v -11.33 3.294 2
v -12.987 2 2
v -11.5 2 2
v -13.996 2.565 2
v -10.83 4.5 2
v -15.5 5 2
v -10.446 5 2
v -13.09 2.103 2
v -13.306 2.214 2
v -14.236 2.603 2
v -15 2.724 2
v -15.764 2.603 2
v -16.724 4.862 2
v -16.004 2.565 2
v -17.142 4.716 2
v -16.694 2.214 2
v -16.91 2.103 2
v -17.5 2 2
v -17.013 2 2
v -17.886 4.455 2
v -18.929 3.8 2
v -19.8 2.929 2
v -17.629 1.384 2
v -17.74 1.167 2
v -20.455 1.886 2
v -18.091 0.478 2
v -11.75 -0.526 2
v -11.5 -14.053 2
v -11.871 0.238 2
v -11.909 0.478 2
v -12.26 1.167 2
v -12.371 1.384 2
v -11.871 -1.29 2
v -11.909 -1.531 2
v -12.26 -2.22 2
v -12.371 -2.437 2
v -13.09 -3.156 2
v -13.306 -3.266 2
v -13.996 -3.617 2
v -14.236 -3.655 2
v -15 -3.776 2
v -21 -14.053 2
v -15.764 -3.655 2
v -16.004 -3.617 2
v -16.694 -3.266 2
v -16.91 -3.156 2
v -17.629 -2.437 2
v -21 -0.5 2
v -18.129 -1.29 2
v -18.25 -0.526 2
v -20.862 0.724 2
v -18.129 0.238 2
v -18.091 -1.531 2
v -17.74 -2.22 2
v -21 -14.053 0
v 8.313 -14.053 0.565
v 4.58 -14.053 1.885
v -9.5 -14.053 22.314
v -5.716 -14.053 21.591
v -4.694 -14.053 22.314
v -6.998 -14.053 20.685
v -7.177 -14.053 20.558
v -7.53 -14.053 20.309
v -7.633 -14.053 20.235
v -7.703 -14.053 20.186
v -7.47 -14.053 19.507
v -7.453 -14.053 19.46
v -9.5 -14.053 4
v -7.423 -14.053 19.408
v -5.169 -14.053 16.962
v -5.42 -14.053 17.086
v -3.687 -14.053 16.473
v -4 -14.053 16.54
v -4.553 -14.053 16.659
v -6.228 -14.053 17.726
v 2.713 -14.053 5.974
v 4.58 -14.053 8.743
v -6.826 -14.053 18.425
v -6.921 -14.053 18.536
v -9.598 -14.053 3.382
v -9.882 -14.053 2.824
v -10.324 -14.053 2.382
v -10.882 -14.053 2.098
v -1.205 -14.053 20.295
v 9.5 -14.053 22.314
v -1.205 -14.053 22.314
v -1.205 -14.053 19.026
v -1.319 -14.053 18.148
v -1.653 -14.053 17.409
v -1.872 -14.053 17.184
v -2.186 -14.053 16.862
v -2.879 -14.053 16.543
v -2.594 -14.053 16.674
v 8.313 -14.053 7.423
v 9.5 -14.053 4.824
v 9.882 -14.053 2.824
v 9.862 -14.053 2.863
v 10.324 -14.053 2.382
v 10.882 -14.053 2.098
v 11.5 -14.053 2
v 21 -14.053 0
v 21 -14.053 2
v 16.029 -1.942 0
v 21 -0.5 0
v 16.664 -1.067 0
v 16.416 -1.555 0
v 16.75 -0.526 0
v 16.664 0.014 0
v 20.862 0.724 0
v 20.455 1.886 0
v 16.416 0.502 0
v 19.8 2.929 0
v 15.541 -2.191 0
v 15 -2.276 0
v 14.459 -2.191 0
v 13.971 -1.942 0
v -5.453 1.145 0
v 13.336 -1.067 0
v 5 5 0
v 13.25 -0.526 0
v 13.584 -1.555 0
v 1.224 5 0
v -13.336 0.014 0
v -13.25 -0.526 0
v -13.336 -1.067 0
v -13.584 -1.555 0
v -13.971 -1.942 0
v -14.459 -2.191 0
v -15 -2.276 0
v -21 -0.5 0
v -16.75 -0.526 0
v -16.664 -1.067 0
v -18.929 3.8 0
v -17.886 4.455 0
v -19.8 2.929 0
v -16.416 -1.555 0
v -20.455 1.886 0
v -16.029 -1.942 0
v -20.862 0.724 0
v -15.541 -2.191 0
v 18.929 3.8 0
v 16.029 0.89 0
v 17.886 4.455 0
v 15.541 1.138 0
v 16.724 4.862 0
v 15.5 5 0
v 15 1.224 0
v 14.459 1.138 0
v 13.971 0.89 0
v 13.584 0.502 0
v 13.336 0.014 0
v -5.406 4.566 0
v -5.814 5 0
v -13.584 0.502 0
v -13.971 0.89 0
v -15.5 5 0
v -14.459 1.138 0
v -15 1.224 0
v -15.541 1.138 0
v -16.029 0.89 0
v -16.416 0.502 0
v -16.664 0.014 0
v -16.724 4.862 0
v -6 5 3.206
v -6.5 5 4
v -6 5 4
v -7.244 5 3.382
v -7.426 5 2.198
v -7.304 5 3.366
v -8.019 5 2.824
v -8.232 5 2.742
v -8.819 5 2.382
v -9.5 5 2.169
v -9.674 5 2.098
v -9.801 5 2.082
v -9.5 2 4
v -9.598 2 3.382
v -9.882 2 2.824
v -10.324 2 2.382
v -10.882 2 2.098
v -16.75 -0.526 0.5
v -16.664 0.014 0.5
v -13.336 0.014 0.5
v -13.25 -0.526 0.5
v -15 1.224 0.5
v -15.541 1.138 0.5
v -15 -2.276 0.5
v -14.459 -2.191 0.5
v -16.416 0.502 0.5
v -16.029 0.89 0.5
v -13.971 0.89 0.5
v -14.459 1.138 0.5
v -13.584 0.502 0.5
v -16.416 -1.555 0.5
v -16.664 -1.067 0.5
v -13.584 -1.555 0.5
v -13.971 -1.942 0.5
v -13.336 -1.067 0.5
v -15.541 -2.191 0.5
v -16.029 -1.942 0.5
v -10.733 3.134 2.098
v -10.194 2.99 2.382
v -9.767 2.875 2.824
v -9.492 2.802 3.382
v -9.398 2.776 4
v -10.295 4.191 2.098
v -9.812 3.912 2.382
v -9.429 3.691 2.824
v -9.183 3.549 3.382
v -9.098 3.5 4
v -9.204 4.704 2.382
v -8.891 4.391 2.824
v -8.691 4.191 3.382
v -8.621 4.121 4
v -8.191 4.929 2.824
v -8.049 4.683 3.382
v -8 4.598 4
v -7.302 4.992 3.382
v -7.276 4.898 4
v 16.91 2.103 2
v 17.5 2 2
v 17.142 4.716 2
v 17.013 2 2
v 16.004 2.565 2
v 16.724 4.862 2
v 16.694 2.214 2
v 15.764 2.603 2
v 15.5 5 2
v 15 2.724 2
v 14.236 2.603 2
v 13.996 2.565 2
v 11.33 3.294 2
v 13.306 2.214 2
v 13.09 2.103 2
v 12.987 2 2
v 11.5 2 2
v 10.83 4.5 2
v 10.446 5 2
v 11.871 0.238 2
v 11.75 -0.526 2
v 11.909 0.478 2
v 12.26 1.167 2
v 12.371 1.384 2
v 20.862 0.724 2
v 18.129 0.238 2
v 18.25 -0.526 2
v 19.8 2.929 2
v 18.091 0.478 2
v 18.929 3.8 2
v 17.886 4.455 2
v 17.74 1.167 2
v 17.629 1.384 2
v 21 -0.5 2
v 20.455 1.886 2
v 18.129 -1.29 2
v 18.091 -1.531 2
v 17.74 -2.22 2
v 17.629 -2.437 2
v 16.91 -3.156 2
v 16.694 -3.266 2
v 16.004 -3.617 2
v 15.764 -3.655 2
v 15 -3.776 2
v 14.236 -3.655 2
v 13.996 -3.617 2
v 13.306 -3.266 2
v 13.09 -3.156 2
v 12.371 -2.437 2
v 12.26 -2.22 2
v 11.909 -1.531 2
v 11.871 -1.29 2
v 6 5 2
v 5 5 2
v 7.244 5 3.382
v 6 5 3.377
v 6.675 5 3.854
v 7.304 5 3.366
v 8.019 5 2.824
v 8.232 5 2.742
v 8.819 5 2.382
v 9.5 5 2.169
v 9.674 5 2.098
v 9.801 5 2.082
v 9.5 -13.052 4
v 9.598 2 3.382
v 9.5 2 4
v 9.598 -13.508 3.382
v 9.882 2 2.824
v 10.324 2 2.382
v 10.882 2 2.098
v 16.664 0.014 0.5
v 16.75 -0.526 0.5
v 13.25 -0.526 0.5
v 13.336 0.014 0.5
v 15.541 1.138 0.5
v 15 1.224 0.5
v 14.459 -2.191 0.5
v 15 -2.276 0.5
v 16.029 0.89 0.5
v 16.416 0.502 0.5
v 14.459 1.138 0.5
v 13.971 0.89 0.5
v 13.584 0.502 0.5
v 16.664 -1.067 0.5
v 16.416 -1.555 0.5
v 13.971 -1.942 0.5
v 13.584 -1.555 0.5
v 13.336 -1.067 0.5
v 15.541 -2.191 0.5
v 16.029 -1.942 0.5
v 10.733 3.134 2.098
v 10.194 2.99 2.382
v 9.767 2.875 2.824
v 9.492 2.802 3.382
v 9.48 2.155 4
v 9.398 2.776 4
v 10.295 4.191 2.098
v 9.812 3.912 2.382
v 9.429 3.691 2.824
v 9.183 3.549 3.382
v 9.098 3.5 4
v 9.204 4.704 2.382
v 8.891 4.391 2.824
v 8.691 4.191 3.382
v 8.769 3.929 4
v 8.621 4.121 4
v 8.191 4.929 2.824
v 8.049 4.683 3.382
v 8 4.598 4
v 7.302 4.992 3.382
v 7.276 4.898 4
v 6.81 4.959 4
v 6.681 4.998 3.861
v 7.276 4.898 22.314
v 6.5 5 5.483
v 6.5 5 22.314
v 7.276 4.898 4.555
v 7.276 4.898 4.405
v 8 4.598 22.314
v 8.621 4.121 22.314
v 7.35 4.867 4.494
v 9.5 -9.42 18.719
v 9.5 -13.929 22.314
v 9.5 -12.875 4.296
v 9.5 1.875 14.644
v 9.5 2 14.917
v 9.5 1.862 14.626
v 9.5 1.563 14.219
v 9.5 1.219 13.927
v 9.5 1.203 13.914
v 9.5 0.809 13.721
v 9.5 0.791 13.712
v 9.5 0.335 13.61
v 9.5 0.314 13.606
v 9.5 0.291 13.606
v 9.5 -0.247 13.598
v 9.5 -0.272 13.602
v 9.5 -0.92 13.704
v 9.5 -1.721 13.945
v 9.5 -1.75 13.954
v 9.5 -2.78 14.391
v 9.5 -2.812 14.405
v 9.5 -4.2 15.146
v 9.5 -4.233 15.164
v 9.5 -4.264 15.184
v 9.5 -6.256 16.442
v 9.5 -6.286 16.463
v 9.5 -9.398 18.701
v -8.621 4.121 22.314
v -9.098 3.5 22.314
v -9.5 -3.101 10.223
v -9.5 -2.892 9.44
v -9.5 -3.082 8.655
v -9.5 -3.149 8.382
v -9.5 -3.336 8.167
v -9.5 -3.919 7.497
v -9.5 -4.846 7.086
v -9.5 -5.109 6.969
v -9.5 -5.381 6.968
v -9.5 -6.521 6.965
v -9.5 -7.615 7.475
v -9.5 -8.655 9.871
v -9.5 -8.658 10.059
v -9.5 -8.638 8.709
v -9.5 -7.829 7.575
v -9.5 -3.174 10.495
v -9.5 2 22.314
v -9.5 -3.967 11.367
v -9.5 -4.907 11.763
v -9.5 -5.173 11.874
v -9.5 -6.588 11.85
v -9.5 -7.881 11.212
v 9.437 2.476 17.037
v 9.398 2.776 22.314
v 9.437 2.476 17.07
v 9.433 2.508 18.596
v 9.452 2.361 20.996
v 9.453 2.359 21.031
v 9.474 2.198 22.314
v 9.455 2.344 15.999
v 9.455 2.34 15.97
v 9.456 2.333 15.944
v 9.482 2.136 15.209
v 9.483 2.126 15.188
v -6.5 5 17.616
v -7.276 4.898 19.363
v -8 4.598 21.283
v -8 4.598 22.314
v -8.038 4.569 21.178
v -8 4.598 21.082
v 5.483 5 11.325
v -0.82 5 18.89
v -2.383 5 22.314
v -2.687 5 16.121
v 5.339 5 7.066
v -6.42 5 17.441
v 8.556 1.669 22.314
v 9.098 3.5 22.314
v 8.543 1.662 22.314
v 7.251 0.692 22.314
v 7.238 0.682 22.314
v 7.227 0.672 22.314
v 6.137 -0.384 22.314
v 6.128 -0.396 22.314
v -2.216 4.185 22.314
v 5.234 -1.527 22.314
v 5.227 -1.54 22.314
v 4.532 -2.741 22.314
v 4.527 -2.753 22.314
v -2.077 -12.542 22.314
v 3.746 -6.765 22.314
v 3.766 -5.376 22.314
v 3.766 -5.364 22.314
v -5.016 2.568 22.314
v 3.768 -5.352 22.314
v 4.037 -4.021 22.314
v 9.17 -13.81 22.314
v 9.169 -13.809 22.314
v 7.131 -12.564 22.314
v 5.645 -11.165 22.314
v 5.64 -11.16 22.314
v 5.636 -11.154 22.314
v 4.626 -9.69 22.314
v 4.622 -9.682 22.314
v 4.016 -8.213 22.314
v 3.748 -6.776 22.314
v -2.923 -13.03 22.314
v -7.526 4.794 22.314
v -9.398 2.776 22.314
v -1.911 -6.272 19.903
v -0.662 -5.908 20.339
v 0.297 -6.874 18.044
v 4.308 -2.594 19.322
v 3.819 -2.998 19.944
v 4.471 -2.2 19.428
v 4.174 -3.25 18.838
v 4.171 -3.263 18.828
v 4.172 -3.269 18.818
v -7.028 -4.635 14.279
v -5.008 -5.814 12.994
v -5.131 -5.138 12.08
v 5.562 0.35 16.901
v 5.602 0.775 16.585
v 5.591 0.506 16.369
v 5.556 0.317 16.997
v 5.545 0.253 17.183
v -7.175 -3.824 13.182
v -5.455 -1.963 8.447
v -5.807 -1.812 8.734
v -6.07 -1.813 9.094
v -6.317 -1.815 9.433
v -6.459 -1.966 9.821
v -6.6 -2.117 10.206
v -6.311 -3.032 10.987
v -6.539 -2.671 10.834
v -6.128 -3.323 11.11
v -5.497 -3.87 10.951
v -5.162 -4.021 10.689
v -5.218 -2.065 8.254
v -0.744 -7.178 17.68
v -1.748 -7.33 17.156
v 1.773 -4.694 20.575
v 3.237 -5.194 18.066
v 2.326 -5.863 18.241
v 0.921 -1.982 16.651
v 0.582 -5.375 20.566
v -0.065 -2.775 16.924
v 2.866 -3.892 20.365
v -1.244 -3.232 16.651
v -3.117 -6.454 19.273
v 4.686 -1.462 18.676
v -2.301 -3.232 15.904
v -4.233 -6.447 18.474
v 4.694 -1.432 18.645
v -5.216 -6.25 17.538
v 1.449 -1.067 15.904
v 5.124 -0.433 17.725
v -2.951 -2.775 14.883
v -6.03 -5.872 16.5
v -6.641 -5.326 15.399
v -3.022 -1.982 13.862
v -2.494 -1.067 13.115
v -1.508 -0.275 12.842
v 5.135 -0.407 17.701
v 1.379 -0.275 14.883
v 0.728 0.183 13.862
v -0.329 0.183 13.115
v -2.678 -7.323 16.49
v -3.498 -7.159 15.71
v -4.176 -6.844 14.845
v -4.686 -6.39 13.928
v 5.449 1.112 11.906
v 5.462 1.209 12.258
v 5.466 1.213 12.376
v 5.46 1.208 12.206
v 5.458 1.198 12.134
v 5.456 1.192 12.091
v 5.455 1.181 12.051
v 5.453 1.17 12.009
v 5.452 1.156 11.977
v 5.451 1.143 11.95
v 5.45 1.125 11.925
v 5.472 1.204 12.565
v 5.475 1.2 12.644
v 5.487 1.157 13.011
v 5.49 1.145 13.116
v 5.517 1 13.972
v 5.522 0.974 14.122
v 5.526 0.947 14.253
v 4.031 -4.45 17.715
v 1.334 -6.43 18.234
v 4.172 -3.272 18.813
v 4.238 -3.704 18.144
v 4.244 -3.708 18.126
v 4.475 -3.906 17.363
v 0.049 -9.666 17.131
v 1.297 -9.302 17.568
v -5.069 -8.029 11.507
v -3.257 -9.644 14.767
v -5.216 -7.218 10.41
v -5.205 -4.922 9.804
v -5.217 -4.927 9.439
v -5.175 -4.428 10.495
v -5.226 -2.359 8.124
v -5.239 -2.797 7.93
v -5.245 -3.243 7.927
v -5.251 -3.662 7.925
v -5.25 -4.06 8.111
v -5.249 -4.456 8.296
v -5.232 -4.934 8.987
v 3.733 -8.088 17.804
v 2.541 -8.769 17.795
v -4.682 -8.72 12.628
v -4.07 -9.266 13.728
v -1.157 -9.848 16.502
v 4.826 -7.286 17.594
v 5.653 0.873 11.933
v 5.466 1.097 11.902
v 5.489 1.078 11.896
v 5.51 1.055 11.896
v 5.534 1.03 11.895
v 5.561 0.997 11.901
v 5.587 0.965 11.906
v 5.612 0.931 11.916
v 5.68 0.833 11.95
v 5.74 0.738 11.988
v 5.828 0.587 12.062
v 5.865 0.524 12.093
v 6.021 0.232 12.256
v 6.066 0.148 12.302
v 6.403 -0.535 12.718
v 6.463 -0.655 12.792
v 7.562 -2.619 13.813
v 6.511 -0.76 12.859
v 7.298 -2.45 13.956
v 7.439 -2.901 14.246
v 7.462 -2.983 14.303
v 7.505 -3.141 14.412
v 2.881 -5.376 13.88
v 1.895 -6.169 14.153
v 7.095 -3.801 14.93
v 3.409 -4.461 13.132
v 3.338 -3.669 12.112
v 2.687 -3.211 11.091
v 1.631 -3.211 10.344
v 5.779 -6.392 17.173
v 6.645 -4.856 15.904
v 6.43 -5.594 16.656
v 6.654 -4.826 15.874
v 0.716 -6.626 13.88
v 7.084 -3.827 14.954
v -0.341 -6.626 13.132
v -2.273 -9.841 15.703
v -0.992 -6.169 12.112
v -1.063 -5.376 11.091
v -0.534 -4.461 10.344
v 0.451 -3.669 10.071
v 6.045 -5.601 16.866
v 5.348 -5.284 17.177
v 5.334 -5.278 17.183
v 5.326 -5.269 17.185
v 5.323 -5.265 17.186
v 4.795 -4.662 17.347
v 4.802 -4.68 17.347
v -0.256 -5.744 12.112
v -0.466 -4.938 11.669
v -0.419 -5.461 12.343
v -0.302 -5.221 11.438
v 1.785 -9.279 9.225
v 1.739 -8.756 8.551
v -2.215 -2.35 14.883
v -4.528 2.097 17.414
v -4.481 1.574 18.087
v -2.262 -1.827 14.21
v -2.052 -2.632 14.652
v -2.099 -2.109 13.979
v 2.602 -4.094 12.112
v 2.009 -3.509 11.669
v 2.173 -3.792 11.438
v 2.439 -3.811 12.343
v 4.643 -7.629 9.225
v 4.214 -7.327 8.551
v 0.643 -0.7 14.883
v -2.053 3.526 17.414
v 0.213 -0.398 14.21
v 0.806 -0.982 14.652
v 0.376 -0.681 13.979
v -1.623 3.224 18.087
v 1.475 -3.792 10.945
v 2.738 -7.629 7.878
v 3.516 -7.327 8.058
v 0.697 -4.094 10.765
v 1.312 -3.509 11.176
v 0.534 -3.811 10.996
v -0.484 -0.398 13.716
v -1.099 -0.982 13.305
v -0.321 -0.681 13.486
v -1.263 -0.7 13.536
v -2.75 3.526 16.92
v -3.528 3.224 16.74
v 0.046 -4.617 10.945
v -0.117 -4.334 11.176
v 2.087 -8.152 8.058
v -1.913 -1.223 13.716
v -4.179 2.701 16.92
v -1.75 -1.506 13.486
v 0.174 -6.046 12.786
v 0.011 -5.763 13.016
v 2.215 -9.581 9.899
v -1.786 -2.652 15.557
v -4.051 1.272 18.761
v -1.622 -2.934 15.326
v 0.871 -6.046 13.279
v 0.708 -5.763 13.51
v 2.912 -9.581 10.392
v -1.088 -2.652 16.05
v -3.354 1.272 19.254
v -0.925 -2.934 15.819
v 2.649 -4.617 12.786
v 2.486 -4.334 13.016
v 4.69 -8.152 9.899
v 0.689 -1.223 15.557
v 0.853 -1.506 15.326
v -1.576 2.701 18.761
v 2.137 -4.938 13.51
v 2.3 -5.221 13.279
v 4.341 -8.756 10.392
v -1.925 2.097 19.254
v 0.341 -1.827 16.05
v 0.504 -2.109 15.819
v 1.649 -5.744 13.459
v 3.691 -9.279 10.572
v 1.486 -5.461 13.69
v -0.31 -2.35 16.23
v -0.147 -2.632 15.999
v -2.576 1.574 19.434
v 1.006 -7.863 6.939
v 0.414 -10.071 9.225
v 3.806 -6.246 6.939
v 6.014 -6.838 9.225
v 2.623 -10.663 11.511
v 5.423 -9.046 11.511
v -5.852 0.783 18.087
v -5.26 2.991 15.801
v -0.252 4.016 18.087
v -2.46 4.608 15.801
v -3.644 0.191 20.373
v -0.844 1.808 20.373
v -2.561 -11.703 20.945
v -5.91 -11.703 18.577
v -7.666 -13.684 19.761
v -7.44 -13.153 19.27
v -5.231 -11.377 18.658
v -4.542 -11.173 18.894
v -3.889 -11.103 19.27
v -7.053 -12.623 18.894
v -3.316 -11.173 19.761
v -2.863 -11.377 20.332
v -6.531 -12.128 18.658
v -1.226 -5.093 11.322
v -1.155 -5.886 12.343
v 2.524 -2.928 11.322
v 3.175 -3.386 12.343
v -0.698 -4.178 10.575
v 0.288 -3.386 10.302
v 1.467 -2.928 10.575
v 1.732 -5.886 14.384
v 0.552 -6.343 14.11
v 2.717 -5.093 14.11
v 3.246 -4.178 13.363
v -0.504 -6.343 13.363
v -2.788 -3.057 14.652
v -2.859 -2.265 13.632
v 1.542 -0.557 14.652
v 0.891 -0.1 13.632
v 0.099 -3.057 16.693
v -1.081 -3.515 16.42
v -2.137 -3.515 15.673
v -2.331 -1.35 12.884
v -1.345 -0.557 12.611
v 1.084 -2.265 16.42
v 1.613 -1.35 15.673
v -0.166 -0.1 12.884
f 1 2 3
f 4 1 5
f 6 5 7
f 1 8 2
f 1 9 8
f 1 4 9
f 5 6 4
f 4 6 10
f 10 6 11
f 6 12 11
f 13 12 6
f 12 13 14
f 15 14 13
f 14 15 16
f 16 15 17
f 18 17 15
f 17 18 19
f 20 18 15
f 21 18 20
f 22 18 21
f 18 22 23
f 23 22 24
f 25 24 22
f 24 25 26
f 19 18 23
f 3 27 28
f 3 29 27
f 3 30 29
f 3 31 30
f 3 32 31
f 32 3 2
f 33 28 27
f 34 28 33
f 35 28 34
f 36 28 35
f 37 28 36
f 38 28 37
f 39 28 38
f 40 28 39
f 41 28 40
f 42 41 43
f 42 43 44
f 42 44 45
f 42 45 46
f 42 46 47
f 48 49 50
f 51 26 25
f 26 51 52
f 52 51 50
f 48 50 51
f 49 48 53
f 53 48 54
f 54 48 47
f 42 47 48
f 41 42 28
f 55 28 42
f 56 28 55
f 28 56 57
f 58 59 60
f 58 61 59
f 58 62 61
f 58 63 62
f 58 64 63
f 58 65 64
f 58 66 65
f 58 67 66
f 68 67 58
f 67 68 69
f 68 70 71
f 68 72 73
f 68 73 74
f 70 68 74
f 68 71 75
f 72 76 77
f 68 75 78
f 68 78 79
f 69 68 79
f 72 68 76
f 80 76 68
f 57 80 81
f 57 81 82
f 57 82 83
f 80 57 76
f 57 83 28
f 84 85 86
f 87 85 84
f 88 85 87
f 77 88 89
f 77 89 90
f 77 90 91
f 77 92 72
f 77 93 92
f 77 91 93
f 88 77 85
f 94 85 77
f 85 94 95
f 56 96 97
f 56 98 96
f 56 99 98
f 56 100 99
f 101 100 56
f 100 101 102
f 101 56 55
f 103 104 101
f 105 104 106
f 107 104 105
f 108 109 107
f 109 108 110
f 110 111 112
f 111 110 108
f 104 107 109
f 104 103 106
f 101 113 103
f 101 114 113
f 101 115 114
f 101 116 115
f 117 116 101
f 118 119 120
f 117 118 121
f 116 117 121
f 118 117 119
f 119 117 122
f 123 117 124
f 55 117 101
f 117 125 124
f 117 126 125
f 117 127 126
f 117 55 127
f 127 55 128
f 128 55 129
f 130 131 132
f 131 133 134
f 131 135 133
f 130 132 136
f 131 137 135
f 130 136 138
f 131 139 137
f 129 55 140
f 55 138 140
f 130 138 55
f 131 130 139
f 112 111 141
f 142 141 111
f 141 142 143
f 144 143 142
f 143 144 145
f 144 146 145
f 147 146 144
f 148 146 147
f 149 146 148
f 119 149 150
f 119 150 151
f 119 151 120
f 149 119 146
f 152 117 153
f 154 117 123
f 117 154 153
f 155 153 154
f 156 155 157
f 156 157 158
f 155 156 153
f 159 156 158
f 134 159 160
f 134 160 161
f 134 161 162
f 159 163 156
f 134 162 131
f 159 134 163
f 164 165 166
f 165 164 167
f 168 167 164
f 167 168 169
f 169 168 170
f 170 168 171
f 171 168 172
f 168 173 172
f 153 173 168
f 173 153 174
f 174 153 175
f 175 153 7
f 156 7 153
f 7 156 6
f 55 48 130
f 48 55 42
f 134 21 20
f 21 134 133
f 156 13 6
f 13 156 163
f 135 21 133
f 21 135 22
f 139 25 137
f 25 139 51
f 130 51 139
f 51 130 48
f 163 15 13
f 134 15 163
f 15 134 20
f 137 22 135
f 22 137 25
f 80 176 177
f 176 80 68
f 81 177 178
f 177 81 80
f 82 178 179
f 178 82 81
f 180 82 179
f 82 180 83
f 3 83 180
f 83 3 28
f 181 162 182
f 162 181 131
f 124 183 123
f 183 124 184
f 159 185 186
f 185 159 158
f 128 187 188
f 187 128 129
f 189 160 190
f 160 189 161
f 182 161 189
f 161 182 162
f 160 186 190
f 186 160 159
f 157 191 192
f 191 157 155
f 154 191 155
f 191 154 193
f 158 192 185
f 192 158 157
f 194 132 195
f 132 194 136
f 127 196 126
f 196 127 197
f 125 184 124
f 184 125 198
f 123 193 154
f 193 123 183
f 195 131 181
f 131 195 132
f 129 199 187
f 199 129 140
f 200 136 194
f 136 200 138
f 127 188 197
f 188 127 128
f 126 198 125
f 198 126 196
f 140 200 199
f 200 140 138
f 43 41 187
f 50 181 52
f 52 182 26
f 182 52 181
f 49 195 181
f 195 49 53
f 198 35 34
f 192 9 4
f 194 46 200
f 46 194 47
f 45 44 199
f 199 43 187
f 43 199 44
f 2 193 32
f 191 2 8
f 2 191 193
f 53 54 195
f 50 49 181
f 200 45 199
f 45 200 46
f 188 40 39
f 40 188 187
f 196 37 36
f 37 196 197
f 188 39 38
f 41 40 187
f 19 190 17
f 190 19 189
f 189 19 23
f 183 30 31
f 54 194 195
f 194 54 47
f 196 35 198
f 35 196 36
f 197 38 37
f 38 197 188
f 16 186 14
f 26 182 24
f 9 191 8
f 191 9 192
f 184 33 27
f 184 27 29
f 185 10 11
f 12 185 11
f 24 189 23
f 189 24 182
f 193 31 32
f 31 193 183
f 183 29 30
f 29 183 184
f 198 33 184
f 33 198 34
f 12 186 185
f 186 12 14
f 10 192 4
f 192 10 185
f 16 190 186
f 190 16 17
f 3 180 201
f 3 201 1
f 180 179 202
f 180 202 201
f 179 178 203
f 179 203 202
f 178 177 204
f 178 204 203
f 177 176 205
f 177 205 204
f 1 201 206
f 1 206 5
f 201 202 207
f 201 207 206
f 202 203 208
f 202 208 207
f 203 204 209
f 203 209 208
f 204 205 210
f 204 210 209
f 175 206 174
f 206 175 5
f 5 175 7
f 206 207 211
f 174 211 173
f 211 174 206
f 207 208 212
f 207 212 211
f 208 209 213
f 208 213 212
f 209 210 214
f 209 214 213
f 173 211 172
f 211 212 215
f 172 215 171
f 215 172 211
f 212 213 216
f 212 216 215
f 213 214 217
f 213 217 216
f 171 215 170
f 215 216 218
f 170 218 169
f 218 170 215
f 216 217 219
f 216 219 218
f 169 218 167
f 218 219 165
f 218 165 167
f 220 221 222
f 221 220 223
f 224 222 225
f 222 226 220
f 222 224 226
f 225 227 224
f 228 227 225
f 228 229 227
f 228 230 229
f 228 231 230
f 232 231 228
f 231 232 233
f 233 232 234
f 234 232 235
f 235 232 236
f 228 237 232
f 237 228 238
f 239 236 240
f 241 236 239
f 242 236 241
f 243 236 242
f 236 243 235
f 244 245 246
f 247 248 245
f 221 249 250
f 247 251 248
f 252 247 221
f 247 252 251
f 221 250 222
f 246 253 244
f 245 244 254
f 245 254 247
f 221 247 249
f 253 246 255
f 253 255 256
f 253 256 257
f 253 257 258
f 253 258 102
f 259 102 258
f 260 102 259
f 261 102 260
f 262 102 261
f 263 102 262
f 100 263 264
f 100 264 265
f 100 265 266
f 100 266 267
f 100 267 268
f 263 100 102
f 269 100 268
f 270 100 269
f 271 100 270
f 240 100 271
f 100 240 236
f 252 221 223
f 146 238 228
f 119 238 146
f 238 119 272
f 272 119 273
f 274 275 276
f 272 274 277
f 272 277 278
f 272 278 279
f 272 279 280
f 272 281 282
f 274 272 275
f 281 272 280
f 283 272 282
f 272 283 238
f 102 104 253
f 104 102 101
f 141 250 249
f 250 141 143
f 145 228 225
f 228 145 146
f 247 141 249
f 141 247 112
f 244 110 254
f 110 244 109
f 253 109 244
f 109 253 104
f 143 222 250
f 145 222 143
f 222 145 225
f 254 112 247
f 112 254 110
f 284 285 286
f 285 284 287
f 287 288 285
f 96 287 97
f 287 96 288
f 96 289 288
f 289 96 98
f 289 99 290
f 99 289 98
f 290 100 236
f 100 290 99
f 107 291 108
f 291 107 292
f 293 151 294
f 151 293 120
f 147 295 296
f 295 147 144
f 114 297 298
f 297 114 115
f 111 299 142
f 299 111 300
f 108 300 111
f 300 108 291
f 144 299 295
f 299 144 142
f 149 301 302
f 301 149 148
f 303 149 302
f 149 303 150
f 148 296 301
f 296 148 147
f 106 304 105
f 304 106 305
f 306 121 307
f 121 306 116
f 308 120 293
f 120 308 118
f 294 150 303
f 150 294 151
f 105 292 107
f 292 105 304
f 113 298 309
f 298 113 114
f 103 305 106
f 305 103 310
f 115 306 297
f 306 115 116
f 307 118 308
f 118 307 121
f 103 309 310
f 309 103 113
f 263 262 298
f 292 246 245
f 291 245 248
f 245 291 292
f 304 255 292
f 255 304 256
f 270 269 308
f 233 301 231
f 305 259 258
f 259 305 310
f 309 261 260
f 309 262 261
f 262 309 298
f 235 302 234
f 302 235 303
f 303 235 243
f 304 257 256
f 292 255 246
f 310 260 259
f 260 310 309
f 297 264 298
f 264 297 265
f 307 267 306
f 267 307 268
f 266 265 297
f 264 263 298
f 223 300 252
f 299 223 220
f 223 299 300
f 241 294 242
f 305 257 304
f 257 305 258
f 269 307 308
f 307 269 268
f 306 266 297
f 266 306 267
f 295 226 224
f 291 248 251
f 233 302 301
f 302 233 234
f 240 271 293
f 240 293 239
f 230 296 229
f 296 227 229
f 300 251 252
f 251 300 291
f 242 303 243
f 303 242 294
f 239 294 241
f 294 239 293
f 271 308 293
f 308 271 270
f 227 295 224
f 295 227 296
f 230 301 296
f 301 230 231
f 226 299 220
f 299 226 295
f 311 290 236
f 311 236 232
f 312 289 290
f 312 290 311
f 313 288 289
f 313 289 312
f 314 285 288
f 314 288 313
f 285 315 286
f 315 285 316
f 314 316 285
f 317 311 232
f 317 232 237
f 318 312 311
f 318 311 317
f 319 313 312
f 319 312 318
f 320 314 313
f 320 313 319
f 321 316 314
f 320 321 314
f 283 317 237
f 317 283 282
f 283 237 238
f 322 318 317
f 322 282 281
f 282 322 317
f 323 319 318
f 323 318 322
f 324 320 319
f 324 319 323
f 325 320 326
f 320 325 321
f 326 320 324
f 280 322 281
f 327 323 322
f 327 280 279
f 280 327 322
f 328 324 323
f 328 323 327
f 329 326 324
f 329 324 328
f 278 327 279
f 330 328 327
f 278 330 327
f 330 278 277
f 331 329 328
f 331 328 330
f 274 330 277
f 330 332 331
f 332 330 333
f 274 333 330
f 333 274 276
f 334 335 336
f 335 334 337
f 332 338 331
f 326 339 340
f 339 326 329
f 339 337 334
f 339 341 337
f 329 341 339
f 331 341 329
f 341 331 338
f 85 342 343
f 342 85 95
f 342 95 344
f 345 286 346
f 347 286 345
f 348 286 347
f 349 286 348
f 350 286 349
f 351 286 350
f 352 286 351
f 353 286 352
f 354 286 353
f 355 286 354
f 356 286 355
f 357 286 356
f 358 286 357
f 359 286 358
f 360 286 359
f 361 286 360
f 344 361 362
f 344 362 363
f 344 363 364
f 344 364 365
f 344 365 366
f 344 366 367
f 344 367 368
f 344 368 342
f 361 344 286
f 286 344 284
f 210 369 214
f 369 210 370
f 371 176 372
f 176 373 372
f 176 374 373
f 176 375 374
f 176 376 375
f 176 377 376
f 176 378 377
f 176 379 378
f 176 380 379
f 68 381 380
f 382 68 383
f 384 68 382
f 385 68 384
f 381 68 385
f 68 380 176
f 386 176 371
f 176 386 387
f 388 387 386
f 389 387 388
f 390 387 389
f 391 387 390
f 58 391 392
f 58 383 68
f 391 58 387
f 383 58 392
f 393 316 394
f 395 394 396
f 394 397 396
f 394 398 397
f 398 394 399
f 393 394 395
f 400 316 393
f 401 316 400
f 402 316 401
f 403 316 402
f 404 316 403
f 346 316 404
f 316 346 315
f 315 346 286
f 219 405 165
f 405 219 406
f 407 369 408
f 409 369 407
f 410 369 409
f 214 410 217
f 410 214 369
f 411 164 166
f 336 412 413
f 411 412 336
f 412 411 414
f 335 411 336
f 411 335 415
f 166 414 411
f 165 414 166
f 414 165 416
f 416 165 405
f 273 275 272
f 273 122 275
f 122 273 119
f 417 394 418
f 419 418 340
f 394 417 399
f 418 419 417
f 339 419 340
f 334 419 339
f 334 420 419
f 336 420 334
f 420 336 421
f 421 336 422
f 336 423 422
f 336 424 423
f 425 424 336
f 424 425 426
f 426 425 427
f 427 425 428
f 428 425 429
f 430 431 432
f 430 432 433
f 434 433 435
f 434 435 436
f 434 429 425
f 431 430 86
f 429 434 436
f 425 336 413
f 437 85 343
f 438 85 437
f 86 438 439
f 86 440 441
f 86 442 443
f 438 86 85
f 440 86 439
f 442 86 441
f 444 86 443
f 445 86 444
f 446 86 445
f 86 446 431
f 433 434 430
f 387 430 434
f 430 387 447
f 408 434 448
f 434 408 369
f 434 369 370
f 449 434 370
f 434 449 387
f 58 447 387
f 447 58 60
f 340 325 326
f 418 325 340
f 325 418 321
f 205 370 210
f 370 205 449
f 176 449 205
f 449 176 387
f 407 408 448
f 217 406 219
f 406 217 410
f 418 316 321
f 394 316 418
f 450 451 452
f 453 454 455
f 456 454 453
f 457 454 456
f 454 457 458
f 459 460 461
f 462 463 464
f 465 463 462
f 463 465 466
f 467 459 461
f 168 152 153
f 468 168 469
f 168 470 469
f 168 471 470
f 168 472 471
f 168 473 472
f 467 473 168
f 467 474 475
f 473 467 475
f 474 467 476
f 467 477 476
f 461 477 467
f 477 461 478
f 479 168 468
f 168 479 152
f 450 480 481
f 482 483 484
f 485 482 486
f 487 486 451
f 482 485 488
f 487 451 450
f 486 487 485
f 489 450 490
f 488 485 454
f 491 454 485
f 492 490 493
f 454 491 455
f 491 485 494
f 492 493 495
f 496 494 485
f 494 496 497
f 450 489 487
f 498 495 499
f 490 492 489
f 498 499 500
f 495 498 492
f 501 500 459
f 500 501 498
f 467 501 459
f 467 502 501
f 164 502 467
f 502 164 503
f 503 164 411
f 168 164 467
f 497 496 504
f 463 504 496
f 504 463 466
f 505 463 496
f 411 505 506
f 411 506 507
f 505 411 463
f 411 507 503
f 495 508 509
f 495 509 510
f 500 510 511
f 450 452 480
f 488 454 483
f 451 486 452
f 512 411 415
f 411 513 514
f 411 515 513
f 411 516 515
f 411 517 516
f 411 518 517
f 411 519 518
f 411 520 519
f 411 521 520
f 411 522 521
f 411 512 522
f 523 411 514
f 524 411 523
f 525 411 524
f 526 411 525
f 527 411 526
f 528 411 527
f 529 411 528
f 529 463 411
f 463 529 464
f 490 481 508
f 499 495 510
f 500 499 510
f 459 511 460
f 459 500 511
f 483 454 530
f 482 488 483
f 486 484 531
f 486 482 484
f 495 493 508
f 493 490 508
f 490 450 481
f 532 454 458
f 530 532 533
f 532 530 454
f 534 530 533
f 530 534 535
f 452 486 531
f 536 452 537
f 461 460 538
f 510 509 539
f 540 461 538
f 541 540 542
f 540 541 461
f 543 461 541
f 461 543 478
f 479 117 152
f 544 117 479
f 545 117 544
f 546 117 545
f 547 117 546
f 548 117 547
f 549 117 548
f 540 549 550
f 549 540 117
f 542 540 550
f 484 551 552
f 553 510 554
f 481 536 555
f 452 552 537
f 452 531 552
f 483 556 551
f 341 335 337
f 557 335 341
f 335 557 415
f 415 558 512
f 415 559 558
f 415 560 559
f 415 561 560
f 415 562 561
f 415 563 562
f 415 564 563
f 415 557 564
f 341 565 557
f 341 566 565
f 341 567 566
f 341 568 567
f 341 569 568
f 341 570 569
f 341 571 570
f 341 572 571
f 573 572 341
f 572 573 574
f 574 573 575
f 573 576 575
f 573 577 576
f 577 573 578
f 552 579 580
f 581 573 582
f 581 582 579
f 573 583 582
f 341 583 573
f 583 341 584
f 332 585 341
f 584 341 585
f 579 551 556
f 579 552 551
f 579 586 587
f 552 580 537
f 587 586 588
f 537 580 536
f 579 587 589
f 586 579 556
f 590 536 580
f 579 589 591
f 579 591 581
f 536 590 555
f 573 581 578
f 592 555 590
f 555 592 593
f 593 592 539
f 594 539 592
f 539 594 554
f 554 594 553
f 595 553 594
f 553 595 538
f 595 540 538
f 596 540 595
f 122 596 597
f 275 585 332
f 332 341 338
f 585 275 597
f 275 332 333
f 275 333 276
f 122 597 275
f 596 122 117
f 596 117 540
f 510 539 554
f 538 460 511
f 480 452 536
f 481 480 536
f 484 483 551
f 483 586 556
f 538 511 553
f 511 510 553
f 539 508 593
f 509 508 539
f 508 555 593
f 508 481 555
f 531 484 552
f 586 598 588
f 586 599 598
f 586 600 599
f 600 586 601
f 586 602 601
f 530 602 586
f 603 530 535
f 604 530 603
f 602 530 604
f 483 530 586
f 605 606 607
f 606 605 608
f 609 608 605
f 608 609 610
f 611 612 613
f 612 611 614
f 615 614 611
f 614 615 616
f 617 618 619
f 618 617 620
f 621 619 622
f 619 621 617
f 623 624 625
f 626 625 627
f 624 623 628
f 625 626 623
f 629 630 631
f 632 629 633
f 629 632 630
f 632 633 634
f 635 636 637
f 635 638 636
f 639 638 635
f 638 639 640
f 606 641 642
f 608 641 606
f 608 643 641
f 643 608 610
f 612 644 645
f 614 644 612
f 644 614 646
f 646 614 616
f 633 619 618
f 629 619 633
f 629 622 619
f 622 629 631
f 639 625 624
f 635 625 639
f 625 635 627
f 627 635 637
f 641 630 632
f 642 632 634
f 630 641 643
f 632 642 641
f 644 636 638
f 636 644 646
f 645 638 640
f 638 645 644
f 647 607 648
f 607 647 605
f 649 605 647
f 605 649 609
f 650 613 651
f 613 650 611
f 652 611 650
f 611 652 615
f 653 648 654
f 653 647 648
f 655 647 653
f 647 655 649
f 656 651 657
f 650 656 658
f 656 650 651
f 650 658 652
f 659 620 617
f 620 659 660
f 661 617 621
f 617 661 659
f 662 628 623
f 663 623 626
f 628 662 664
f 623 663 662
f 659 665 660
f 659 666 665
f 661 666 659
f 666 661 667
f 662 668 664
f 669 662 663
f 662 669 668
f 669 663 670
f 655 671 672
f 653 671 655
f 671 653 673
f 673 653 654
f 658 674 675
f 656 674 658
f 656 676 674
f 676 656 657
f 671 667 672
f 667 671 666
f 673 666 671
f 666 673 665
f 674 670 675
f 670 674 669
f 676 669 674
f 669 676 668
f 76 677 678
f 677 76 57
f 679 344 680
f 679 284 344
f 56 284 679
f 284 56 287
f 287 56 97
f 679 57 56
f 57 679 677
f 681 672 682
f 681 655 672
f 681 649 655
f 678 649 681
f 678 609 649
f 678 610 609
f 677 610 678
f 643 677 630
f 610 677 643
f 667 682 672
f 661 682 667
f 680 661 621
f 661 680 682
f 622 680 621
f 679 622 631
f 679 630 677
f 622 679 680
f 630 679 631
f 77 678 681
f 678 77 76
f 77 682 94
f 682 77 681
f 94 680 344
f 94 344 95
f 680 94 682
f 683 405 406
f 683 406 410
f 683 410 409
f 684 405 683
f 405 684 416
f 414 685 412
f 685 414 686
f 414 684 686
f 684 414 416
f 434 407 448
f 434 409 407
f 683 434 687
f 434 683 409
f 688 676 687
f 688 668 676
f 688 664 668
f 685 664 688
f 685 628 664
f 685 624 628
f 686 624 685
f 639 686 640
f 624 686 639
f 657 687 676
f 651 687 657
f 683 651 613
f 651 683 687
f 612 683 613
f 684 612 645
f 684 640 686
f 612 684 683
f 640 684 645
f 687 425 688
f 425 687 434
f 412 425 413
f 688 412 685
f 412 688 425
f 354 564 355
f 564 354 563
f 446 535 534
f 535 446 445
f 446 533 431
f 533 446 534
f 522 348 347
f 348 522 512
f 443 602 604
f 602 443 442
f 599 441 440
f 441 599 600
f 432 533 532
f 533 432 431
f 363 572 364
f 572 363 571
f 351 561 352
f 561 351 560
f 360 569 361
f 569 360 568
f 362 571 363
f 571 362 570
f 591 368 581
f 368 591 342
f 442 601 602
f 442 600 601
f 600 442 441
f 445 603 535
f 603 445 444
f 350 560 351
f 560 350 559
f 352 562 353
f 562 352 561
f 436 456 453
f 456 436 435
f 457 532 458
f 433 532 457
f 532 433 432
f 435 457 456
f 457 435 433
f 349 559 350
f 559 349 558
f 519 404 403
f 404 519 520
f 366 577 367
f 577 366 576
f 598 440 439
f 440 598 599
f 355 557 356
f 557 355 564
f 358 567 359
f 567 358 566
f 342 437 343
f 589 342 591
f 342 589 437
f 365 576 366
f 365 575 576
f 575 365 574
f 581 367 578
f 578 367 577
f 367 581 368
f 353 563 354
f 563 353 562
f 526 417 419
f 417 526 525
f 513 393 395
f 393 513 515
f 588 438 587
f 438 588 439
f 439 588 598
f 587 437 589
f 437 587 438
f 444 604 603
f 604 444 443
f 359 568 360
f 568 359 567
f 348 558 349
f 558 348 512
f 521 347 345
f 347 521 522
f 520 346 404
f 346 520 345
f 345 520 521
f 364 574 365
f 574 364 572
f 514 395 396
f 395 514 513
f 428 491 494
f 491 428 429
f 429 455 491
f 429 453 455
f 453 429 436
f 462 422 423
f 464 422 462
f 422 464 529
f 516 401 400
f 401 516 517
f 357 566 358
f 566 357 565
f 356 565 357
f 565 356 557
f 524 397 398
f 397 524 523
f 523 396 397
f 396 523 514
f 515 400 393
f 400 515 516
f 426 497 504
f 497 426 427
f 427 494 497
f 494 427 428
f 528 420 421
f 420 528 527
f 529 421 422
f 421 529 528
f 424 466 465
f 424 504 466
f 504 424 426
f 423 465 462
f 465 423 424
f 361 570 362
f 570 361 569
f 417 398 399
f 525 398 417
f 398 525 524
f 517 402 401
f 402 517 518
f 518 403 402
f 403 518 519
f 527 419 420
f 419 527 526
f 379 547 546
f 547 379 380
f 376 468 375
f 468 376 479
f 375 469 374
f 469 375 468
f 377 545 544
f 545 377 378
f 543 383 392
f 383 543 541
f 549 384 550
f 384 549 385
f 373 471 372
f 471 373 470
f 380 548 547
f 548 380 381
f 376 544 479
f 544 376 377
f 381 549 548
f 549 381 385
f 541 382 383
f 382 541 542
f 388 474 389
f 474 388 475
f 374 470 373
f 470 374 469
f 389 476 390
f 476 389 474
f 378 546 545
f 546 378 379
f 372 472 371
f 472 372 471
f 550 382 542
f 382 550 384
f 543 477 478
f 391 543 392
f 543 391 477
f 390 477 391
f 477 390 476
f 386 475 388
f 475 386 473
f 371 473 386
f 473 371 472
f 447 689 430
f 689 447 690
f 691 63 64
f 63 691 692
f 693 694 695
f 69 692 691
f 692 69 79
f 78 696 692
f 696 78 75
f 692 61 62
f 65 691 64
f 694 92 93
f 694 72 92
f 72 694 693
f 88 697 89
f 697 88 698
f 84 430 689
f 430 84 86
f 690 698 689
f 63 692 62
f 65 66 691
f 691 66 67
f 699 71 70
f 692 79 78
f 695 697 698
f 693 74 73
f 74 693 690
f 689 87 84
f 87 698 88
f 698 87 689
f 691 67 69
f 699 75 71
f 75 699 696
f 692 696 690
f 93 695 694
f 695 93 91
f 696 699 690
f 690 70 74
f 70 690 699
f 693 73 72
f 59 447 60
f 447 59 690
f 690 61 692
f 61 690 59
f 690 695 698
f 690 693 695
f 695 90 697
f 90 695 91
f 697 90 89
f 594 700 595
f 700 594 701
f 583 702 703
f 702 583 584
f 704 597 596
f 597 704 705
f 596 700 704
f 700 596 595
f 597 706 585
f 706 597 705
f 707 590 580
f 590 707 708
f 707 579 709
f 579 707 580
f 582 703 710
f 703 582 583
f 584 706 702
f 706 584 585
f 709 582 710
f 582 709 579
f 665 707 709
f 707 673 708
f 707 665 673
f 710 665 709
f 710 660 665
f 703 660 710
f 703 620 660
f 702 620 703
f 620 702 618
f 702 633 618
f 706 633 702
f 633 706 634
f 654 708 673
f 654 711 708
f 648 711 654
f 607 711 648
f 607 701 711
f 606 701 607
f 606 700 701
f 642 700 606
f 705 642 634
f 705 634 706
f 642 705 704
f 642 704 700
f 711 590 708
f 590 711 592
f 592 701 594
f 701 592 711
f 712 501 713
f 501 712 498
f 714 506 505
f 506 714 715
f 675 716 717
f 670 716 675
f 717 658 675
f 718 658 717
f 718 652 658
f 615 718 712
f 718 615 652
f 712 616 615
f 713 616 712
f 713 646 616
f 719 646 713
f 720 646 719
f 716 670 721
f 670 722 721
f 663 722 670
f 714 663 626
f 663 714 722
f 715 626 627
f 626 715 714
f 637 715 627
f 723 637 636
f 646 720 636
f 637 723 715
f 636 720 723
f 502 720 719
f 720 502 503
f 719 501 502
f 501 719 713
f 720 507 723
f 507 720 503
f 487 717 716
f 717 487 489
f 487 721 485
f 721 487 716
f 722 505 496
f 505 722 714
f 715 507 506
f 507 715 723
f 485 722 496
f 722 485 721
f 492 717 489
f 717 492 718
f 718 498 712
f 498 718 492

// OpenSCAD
// file: lib/parameters.scad
// Parameters shared between modules
Base_th = 2;
Beam_width = 15;
Wiggle = 0.25;
Fat_beam_width = Beam_width + Wiggle;
Beam_length = 400;
Wall_th = 2.5;
Min_beam_width = 12.5;
Max_beam_width = 17.5;
Zip_th = 2;
Zip_h = Zip_th + Max_beam_width - Min_beam_width;
Zip_w = 5.0;
Nema17_cube_width          = 42.43;
Nema17_screw_hole_width    = 43.74; // Opposite corner screws
Nema17_ring_diameter       = 22;
Nema17_cube_height         = 39.36;
Nema17_shaft_height        = 63.65;
Nema17_ring_height         = 2;
Nema17_shaft_radius        = 5/2;
b608_outer_dia = 22.2;
b608_width = 7.05;
b608_bore_r = 4;
Gap_between_sandwich_and_plate = 1.5 + Base_th; // 1.5 mm for wiggle
Motor_bracket_flerp_r = 6;
Motor_bracket_flerp = 14;
Motor_bracket_cw = Nema17_cube_width + 6;
Motor_bracket_att_ang = 50;
Mounting_screw_d = 3.5;
Mounting_screw_head_d = 14;
Spool_outer_wall_th = 4;

// Corner clamp parameters
Cc_l1 = (Fat_beam_width+2*Wall_th)*2*sqrt(3);
Cc_rad_b = 4;
Cc_action_point_from_mid = Cc_l1/sqrt(3)-2*Cc_rad_b-7;
Cc_plastic_length = sqrt(Cc_action_point_from_mid*Cc_action_point_from_mid
                       - (Cc_action_point_from_mid/2)*(Cc_action_point_from_mid/2));
Eyelet_extra_dist = 0.75;
Eyelet_diameter = 3.35;
Move_d_bearings_inwards = -2;

// The distance between the two action points on the mover
Sidelength = Beam_length + 2*Cc_plastic_length;

/////// Gear parameters ////////////
Circular_pitch = 262;
Motor_teeth = 10;
Gear_height = 21.4-3;
Motor_pitch                      = (Motor_teeth*Circular_pitch/360);
Motor_pitch_diametrial           = Motor_teeth/(2*Motor_pitch);
Motor_outer_radius               = Motor_pitch + 1/Motor_pitch_diametrial;
Spool_teeth = 100;
Spool_r = 75;
Spool_height = 8;
Spool_pitch                      = (Spool_teeth*Circular_pitch/360);
Spool_pitch_diametrial           = Spool_teeth/(2*Spool_pitch);
Spool_outer_radius               = Spool_pitch + 1/Spool_pitch_diametrial;
Sep_disc_radius = 161.83/2; // Made to match 255 teeth gt2 pulley
Motor_bracket_depth = Gear_height+1+7+Nema17_ring_height+1+Gap_between_sandwich_and_plate;
Spool_core_flerp0 = 16+3;

/////// Lineroller parameters ////////////
b623_width  = 4;
b623_bore_r = 3/2;
b623_vgroove_big_r = 12/2;
b623_vgroove_small_r = 10/2;
b623_outer_dia = 10;
b623_vgroove_room_to_grow_r = 1.0;

Depth_of_roller_base = 18;
Roller_flerp = 6;
Roller_l = 42;
Roller_fl = (Roller_l - Depth_of_roller_base)/2;

Line_roller_wall_th = 5;

Line_roller_ABC_winch_h =  Gap_between_sandwich_and_plate
                           + Sep_disc_radius
                           - Spool_r
                           + Depth_of_roller_base/2
                           + b623_vgroove_small_r;


Ptfe_r = 2.1;
Roller_base_r = 8;
Screw_h = 2;
Screw_head_h = 2;
M3_screw_head_d = 5.8;
Spool_center_bearing_wall_th = 5;
Corner_clamp_bearings_center_to_center = 15;
Anchor_bearings_center_to_center = Corner_clamp_bearings_center_to_center + b623_outer_dia;

//// Lineroller anchor parameters /////

Back_bearing_x = b623_vgroove_big_r + 1.5;
Front_bearing_x = -b623_vgroove_big_r - 5;
Move_tower = -12.2;
Lower_bearing_z = 13;
Higher_bearing_z = Lower_bearing_z + Corner_clamp_bearings_center_to_center;

//// Cable Clamp parameters /////
Bit_width = 12;
Cable_r=2.5;

//// Donkey and encoder parameters /////

Donkey_shaft_d = 6;
Donkey_h = 65.12;
Donkey_body_d = 50;
Donkey_feet_th = 3.5;

Encoder_LDP3806_shaft_d = 6;
Encoder_LDP3806_d = 38;

// Belt drive parameters
GT2_belt_width = 6.5;
GT2_gear_height = GT2_belt_width + 2;
GT2_motor_gear_height = 16;
GT2_motor_gear_outer_dia = 16;
GT2_spool_gear_teeth = 255;
GT2_motor_gear_teeth = 20;
Torx_depth = GT2_gear_height/2;
Belt_roller_h = 56;
Belt_thickness = 1.4;

Belt_roller_space_between_walls = 2*b623_width + 0.8;
Belt_roller_wall_th = (Depth_of_roller_base - Belt_roller_space_between_walls)/2+2;
Belt_roller_top_adj_screw_x = Depth_of_roller_base/2-3.7;
Belt_roller_top_adj_screw_y = Belt_roller_space_between_walls/2+2;
Belt_roller_containing_cube_ywidth = Belt_roller_space_between_walls+8.5;
Belt_roller_insert_h = 18;


Sandwich_ABC_width = 2*(1+Spool_height) + GT2_gear_height;
Sandwich_D_width = 3*(1+Spool_height) + GT2_gear_height;
Spool_core_halve_width = 14.3;
Spool_core_impression_in_spool_cover=0.75;
Spool_core_bottom_th = 1.5;
Spool_core_shoulder = 1;
Spool_core_cover_adj = Spool_core_shoulder+Spool_core_bottom_th-Spool_core_impression_in_spool_cover;

Smooth_rod_length_ABC = Sandwich_ABC_width + 2*(Spool_core_halve_width-Spool_core_impression_in_spool_cover + Spool_core_bottom_th + Spool_core_shoulder);
Smooth_rod_length_D = Sandwich_D_width + 2*(Spool_core_halve_width-Spool_core_impression_in_spool_cover + Spool_core_bottom_th + Spool_core_shoulder);

spd = Spool_height+GT2_gear_height;
// Horizontal_deflector_cube_y_size must be exact this number
// because we want to deflect AB-lines
// 60 degrees on the ceiling unit, and we want to put two
// deflectors in a row and get a distance between bearings
// that maintain the distance d when deflecting 60 degrees
Horizontal_deflector_cube_y_size = (2/sqrt(3))*spd;


// Top plate parameters needed for layout slicer
Yshift_top_plate = -297.8;
// main file
include <lib/parameters.scad>
use <lib/util.scad>


// Investigate layers
//difference(){
//  horizontal_line_deflector();
//  translate([0,0,72.0])
//  cube(100,center=true);
//}

//mirror([1,0,0])
//rotate([0,0,-30])
//slanted_lines_for_aiming();
module slanted_lines_for_aiming(liney=0){
  $fn=20;
  line_from_to([103, liney, 9.5], [0, liney, 9.5], r=1.1);
  line_from_to([-b623_vgroove_small_r*sin(30), -(liney+b623_vgroove_small_r*(1-cos(30))), 9.5],
               [0, -liney, 9.5] + [cos(120)*100, -sin(120)*100, 130],
               r=1.1);
}

tilted_line_deflector(rotx=-atan(sqrt(2)), rotz=-30); // Angle atan(sqrt(2)) works if ABCD anchors form like sided tetrahedron
//tilted_line_deflector(rotz=-30, rotx=-10, bullet_shootout=true);
module tilted_line_deflector(twod=false, rotx=0, rotz=0, bullet_shootout=true){
  cx = b623_vgroove_big_r*2 + 7;
  cy = Horizontal_deflector_cube_y_size;
  bz = Gap_between_sandwich_and_plate + Sep_disc_radius - Spool_r;
  bit_y = cy;

  pl = 5.5;
  ybit = -cy+5+bit_y/2;
  ybit_hole = ybit + 4;
  module bit(){
    rotate([0,0,90])
      translate([-Bit_width/2, -bit_y/2, 0])
      difference(){
        one_rounded_cube2([Bit_width+4,bit_y,Base_th], 5.5, $fn=28);
      }
  }

  mirror([1,0,0]) {
    if(!twod){
      extra_b_height = 0.8; // half of this above, half below
      extra_b_width = 2*b623_vgroove_room_to_grow_r; // half of this to the left of bearing
      full_h = bz+8-b623_vgroove_big_r*sin(rotx);
      take_away_angle = 90;

      // something to aim for
      a = b623_vgroove_small_r;
      %translate([ 0, 0, bz ])
        rotate([ rotx, 0, rotz ])
          translate([-a*cos(rotx)*sin(rotz),-a, 0]){
            b623_vgroove();
          }
      difference(){
        union(){
          translate([-cx/2, -cy+5, 0])
            ydir_rounded_cube2([cx, cy, full_h], 3, $fn=4*6);
          for(k=[0,1])
            mirror([k,0,0]){
              difference(){
                union(){
                  translate([6,3,0])
                    cube([2, 2, Base_th*2]);
                  translate([cx/2,-cy+5,Base_th])
                    rotate([0,-90,-90])
                    inner_round_corner(r=2, h=cy, $fn=4*5, back=Base_th-0.1);
                  translate([cx/2+pl,ybit,0])
                    rotate([0,0,90])
                    bit();
                }
                translate([cx/2,5,Base_th])
                  corner_rounder();
                translate([cx/2+pl,ybit_hole,0.5])
                  Mounting_screw_countersink();
              }
            }
        }
        translate([0,0,bz]){
          rotate([ rotx, 0, rotz ])
            translate([-a*cos(rotx)*sin(rotz),-a, 0])
              rotate([0,0,-rotz*cos(rotx)])
                scale([(b623_vgroove_big_r+extra_b_width/2)/b623_vgroove_big_r,
                    (b623_vgroove_big_r+extra_b_width/2)/b623_vgroove_big_r,
                    (b623_width + extra_b_height)/b623_width]){
                  elong_b623_vgroove(20);
                }
        }
        translate([0,0,bz])
          rotate([ rotx, 0, rotz ])
            translate([-a*cos(rotx)*sin(rotz),-a, 0])
              translate([0, 0,-1-bz]){
                M3_screw(h=100, center=true);
                translate([0,0,-10])
                  nut(h=bz+1-b623_width/2-extra_b_height/2 + 5);
                translate([0,0,full_h - 1.5 + 3*sin(rotx)])
                  nut(h=10);
              }
        // The screw head of the one standing behind
        translate([0,-cy,bz])
          rotate([ rotx, 0, rotz ])
            translate([-a*cos(rotx)*sin(rotz),-a, 0])
              translate([0, 0,-1-bz])
                translate([0,0,full_h-9])
                  hull(){
                    cylinder(d=M3_screw_head_d, h=10, $fn=24);
                    translate([0,-4,0])
                      cylinder(d=M3_screw_head_d, h=10);
                  }

        sly = 40;
        q = a-1;
        if (!bullet_shootout){
          for(k=[0,1]) mirror([k*cos(rotz),k*sin(rotz),0])
            translate([q*cos(rotz),q*sin(rotz),bz])
              hull(){
                for(rotx_fac = [-0.05,0,0.05])
                  rotate([ rotx + rotx_fac*rotx, 0, rotz ])
                    translate([k == 0 ? -q/2*sin(rotx) : q/2*sin(rotx),-sly+1,-2.5/2])
                      cube([100,sly, 2.5]);
              }
        }
        if(bullet_shootout){
          translate([ 0, 0, bz ])
            rotate([ rotx, 0, rotz ])
              translate([-a*cos(rotx)*sin(rotz),-a, 0]) {
                translate([-b623_vgroove_small_r-1.5, 0,0])
                  rotate([90,0,rotz/2])
                    translate([-0.4,0,-2])
                    scale([1.2,0.8,1])
                    cylinder(d1=0.3, d2=21, h=16);
                translate([0, b623_vgroove_small_r,0])
                  rotate([90,0,90])
                    translate([0,0,2])
                    cylinder(d1=2, d2=Spool_height, h=15);
              }
        }
      }

      shoulder_height = extra_b_height/2;
      for(hl=[-(b623_width+extra_b_height)/2-2+shoulder_height,
          (b623_width+extra_b_height)/2 - shoulder_height])
        translate([0, 0, bz])
          rotate([ rotx, 0, rotz ])
            translate([-a*cos(rotx)*sin(rotz),-a, 0])
              translate([0, 0,hl])
                difference(){
                  cylinder(d=5, h=2, $fn=12);
                    translate([0,0,-1])
                      cylinder(d=3.3, h=4, $fn=12); // The ring to rest b623_vgroove bore on
                }

    } else { //twod
      difference(){
        translate([-cx/2-Bit_width+0.5, -cy+5])
          ydir_rounded_cube2_2d([cx+2*Bit_width-1, cy], 5.5, $fn=28);
        for(k=[0,1])
          mirror([k,0])
            translate([cx/2+pl,ybit_hole])
              Mounting_screw_countersink(twod=true);
      }
    }
  }
}
